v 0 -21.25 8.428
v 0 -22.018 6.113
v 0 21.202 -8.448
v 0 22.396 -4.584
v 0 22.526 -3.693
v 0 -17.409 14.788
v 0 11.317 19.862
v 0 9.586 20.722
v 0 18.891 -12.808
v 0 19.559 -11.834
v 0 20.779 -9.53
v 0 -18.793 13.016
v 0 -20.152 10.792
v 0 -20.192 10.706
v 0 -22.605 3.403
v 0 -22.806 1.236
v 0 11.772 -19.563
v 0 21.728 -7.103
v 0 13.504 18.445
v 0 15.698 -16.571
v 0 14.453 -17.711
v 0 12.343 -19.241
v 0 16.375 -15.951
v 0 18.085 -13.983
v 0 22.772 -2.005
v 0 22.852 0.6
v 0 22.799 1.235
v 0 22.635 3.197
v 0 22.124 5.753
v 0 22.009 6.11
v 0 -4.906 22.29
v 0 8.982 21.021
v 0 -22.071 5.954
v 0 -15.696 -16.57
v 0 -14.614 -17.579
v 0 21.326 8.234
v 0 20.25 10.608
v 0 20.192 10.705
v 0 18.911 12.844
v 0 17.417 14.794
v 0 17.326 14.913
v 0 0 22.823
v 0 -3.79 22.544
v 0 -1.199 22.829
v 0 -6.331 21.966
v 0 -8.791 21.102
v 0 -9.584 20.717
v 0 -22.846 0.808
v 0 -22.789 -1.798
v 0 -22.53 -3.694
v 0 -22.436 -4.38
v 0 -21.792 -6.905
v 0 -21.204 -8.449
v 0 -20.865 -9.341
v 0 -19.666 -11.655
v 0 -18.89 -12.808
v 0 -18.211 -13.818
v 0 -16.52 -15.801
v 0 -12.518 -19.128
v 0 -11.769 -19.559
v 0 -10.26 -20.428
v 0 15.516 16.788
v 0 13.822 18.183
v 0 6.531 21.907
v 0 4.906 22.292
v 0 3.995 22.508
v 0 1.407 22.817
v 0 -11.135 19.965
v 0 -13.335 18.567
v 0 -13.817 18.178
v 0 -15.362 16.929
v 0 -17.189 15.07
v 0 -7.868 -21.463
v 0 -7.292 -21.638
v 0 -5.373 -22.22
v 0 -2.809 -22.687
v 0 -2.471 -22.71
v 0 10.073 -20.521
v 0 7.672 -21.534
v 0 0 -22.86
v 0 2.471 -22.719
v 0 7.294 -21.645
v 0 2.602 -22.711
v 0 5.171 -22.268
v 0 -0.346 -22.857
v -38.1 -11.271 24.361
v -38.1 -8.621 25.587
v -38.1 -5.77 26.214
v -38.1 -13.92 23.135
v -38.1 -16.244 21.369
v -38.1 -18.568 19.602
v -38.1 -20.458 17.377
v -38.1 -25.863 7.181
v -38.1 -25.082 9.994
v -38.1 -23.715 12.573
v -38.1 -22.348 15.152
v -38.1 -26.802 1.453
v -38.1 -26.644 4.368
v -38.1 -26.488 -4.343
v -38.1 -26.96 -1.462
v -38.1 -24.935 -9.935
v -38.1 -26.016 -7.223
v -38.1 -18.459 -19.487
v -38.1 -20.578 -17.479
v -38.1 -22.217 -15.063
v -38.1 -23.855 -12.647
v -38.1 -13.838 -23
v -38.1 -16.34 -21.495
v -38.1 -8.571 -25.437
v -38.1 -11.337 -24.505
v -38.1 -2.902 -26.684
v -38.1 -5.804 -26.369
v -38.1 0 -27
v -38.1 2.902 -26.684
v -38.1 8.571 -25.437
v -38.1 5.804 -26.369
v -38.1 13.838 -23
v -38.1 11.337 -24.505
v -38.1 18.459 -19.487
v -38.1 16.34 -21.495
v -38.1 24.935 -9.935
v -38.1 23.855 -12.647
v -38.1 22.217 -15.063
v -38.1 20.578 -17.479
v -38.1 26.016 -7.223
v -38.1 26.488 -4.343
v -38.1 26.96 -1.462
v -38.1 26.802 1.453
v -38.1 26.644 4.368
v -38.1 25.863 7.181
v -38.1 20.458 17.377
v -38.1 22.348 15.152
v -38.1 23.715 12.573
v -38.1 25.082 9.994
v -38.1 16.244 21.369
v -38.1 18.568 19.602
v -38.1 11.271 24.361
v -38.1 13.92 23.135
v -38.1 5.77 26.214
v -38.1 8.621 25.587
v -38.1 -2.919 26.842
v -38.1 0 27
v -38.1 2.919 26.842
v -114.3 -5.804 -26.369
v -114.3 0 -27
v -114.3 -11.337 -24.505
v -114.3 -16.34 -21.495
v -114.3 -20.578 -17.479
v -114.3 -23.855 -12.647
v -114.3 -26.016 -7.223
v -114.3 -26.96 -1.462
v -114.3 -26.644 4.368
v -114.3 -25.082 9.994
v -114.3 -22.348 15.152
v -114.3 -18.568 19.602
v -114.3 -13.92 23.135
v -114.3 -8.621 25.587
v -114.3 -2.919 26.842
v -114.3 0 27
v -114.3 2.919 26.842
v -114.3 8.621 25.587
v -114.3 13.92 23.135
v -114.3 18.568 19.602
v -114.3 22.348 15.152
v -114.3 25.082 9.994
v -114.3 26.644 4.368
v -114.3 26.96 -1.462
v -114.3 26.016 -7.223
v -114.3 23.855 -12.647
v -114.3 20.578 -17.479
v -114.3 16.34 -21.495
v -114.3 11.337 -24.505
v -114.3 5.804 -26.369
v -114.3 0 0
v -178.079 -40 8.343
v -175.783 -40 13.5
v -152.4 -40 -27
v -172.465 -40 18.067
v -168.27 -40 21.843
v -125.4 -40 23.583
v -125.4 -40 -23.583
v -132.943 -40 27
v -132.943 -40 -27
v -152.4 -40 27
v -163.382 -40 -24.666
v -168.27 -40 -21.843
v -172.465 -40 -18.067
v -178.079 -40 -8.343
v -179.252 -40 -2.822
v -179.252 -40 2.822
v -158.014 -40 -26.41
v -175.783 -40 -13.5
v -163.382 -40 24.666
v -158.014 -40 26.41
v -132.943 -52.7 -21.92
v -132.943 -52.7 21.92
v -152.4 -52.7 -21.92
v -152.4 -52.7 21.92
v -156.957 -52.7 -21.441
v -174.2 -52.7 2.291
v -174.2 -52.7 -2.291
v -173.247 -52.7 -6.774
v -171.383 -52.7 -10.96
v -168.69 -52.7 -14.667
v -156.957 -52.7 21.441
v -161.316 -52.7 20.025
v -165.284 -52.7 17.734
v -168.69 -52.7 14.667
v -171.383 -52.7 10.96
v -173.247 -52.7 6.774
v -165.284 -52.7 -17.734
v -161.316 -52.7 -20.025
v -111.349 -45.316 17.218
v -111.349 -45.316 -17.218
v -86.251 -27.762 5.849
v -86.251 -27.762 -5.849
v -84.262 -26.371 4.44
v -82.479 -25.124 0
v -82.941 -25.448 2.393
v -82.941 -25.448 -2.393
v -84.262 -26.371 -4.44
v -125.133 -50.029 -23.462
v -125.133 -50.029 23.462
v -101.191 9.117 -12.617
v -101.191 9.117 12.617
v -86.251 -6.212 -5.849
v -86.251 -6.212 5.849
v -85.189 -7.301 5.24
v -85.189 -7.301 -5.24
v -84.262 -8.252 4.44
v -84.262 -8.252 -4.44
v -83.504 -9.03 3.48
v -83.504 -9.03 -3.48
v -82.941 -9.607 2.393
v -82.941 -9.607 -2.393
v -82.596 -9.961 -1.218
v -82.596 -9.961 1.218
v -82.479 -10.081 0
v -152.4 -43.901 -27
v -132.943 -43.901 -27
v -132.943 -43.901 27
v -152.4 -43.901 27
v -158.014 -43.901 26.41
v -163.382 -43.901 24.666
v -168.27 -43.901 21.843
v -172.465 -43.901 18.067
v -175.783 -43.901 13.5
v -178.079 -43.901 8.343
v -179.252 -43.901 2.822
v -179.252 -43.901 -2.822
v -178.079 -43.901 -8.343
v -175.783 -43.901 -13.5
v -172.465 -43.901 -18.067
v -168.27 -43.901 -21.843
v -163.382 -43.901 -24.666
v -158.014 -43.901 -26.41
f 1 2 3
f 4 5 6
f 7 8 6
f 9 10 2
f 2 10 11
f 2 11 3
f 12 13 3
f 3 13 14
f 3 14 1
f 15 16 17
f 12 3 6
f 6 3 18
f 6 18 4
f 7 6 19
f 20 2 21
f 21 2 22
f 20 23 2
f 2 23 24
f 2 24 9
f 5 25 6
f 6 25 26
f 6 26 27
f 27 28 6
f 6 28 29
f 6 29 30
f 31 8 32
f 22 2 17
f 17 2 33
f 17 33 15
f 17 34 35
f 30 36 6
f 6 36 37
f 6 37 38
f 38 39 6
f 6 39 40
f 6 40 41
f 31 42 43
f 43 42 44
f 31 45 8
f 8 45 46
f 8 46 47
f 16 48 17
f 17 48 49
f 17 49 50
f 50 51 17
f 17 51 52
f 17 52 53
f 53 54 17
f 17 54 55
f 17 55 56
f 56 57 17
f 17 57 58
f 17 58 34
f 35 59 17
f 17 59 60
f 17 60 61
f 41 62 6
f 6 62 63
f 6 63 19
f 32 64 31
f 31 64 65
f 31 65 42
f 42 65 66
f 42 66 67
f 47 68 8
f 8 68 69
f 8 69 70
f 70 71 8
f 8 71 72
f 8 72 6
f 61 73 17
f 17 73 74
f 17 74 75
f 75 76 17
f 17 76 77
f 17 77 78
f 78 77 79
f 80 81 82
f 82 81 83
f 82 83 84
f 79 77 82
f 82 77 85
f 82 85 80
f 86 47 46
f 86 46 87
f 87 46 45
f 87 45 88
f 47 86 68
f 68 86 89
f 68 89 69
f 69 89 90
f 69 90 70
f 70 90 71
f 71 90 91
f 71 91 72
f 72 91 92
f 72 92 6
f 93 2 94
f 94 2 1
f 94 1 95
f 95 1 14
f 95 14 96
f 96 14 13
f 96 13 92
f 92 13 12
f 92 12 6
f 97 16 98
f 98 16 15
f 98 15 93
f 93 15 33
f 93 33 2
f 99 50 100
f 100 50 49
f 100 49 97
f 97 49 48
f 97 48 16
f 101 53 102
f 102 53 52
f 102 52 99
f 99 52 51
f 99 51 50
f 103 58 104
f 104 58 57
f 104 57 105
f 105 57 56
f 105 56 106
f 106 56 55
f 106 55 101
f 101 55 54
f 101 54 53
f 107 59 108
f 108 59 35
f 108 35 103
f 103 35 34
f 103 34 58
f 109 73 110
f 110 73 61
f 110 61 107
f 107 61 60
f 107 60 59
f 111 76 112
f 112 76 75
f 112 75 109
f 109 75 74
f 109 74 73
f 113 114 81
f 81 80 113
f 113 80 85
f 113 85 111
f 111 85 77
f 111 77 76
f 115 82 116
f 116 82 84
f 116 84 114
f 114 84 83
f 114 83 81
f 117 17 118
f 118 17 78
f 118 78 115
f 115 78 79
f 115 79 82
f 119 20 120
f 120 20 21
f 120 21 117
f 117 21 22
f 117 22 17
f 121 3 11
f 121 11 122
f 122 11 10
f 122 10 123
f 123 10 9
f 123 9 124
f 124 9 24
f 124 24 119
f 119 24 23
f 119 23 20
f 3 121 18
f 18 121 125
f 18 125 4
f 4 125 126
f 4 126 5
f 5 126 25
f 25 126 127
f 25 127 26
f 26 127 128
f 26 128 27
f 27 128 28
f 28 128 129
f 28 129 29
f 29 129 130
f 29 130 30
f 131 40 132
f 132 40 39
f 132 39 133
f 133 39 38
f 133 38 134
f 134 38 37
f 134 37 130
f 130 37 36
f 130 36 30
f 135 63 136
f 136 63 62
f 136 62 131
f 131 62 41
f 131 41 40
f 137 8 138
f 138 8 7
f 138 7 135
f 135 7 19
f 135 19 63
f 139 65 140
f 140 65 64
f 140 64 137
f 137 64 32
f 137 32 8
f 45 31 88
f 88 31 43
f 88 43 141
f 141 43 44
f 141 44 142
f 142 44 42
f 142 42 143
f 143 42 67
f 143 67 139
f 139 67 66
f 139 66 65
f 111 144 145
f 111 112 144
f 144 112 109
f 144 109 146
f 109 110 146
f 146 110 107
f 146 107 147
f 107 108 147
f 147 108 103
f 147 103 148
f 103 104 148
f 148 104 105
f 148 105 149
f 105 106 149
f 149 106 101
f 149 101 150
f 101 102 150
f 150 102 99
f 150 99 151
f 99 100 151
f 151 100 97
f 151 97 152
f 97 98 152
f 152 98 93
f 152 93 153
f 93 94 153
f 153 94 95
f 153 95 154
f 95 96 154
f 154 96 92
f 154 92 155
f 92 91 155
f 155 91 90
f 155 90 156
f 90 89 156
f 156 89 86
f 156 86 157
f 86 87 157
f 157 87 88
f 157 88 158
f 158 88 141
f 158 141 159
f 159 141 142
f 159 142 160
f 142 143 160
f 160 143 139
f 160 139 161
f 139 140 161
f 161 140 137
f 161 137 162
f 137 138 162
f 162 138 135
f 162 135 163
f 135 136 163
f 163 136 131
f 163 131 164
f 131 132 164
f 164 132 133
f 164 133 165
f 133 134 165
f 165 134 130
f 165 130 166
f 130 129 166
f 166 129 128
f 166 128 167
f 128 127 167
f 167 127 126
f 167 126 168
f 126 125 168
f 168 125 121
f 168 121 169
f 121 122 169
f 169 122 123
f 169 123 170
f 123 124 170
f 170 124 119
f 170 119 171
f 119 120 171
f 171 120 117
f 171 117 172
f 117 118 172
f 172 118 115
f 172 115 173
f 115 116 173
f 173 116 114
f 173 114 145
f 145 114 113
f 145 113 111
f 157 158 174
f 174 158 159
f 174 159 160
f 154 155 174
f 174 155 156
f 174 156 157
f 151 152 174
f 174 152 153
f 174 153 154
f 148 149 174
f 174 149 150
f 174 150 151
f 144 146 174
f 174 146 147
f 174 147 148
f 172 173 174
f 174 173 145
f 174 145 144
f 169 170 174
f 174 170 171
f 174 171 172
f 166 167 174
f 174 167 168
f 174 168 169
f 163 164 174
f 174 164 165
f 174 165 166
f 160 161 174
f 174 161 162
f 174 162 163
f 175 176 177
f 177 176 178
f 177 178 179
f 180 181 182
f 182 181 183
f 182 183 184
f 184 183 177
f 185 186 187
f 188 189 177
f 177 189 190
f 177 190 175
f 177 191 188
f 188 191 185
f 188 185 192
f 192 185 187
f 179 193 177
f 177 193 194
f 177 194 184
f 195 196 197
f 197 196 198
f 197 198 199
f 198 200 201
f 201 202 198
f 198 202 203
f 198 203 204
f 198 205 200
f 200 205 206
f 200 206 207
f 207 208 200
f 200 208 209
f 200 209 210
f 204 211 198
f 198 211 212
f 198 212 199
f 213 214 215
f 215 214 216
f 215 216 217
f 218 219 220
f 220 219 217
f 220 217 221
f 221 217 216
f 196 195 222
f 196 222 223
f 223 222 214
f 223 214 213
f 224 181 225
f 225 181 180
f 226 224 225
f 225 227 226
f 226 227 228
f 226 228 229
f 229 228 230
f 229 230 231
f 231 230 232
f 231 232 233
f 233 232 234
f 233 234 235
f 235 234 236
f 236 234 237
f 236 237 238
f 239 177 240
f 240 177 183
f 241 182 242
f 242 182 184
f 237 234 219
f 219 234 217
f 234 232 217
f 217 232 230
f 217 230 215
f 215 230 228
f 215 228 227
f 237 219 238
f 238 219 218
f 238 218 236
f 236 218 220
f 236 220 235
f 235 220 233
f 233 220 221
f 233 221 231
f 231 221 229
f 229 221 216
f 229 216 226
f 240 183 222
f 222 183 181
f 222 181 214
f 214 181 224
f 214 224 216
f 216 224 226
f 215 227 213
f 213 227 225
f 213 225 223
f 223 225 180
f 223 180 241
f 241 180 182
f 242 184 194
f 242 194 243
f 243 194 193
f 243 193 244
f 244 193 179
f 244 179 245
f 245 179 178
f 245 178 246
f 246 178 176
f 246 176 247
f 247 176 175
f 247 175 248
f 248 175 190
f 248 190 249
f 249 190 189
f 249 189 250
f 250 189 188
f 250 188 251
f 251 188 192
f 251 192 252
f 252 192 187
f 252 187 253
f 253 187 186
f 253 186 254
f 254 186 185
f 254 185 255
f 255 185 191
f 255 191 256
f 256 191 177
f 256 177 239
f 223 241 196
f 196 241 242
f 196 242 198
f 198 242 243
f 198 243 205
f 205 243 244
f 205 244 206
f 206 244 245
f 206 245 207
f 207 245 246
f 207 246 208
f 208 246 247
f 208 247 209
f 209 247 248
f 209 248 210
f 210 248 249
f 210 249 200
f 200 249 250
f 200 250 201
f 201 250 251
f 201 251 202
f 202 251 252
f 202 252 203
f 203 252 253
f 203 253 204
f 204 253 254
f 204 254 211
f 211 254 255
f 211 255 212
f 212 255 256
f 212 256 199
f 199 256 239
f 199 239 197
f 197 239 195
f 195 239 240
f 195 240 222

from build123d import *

# Parameters (mm, degrees)
SKETCH2_R                = 27
SKETCH1_R                = 22.86
BOSS_EXTRUDE3_DEPTH      = 27
BOSS_EXTRUDE3_DEPTH_BACK = 27
CUT_EXTRUDE1_DEPTH       = 194.396897645
CUT_EXTRUDE1_DEPTH_BACK  = 194.396897645
SKETCH3_R                = 27
BOSS_EXTRUDE1_DEPTH      = 76.2
CUT_EXTRUDE5_DEPTH       = 194.396897645
CHAMFER1_SIZE            = 5.08
CHAMFER1_SIZE2           = 8.798818102


with BuildPart() as part:
    # Sketch2 → Loft1 section 0
    with BuildSketch(Plane(origin=(-38.1, 0, 0), x_dir=(0, 0, -1), z_dir=(1, 0, 0))):
        Circle(SKETCH2_R)
    # Sketch1 → Loft1 section 1
    with BuildSketch(Plane(origin=(0, 0, 0), x_dir=(0, 0, -1), z_dir=(1, 0, 0))):
        Circle(SKETCH1_R)
    loft()

    # Sketch3 → Boss-Extrude1 (add)
    with BuildSketch(Plane.ZY.offset(38.1)):
        with Locations(Location((0, 0, 0), (0, 0, 180))):
            Circle(SKETCH3_R)
    extrude(amount=BOSS_EXTRUDE1_DEPTH)


with BuildPart() as body_2:
    # Sketch5 → Boss-Extrude3 (new, two sides: drawn at the far end of the back side and taken through both)
    with BuildSketch(Plane.XY.offset(-BOSS_EXTRUDE3_DEPTH_BACK)):
        Polygon((-179.4, -52.7), (-132.943113445, -52.7), (-111.349334982, -45.315756873), (-73.760134446, -19.026311402), (-101.191412815, 9.117290663), (-125.4, -40), (-179.4, -40), align=None)
    extrude(amount=BOSS_EXTRUDE3_DEPTH + BOSS_EXTRUDE3_DEPTH_BACK)

    # Sketch6 → Cut-Extrude1 (cut, two sides: drawn at the far end of the back side and taken through both)
    with BuildSketch(Plane(origin=(0, -40, 0), x_dir=(1, 0, 0), z_dir=(0, 1, 0)).offset(-CUT_EXTRUDE1_DEPTH_BACK)):
        with BuildLine():
            Line((-86.250527187, 5.848904512), (-132.943113445, 27))
            Line((-132.943113445, 27), (-91.242806862, 97.749897972))
            Line((-91.242806862, 97.749897972), (-57.269689533, 82.016741592))
            Line((-57.269689533, 82.016741592), (-73.59167625, -70.746058769))
            Line((-73.59167625, -70.746058769), (-96.605806247, -77.573084602))
            Line((-96.605806247, -77.573084602), (-132.943113445, -27))
            Line((-132.943113445, -27), (-86.250527187, -5.848904512))
            ThreePointArc((-86.250527187, -5.848904512), (-82.478988384, 0), (-86.250527187, 5.848904512))
        make_face()
    extrude(amount=CUT_EXTRUDE1_DEPTH + CUT_EXTRUDE1_DEPTH_BACK, mode=Mode.SUBTRACT)

    # Sketch7 → Cut-Extrude5 (cut, through all)
    with BuildSketch(Plane(origin=(0, -40, 0), x_dir=(1, 0, 0), z_dir=(0, 1, 0))):
        Polygon((-179.4, 27), (-152.4, 27), (-158.750236272, 40.690106542), (-204.252102954, 19.583798613), (-213.553043532, -44.478540914), (-177.8, -47.533614603), (-152.4, -27), (-179.4, -27), (-179.4, 0), align=None)
        with BuildLine():
            ThreePointArc((-179.4, 0), (-171.491883092, 19.091883092), (-152.4, 27))
            Line((-152.4, 27), (-179.4, 27))
            Line((-179.4, 27), (-179.4, 0))
        make_face()
        with BuildLine():
            ThreePointArc((-152.4, -27), (-171.491883092, -19.091883092), (-179.4, 0))
            Line((-179.4, 0), (-179.4, -27))
            Line((-179.4, -27), (-152.4, -27))
        make_face()
    extrude(amount=-CUT_EXTRUDE5_DEPTH, mode=Mode.SUBTRACT)

    # Chamfer1
    chamfer1_edges = [body_2.edges().sort_by_distance(p)[0] for p in [
        (-142.671556723, -52.7, 27),
        (-142.671556723, -52.7, -27),
        (-179.4, -52.7, 0),
    ]]
    chamfer1_side = [body_2.faces().sort_by_distance(p)[0] for p in [
        (-153.720986212, -52.7, 0),
    ]]
    chamfer(chamfer1_edges, length=CHAMFER1_SIZE, length2=CHAMFER1_SIZE2, reference=chamfer1_side[0])


solid = Compound([part.part, body_2.part])
